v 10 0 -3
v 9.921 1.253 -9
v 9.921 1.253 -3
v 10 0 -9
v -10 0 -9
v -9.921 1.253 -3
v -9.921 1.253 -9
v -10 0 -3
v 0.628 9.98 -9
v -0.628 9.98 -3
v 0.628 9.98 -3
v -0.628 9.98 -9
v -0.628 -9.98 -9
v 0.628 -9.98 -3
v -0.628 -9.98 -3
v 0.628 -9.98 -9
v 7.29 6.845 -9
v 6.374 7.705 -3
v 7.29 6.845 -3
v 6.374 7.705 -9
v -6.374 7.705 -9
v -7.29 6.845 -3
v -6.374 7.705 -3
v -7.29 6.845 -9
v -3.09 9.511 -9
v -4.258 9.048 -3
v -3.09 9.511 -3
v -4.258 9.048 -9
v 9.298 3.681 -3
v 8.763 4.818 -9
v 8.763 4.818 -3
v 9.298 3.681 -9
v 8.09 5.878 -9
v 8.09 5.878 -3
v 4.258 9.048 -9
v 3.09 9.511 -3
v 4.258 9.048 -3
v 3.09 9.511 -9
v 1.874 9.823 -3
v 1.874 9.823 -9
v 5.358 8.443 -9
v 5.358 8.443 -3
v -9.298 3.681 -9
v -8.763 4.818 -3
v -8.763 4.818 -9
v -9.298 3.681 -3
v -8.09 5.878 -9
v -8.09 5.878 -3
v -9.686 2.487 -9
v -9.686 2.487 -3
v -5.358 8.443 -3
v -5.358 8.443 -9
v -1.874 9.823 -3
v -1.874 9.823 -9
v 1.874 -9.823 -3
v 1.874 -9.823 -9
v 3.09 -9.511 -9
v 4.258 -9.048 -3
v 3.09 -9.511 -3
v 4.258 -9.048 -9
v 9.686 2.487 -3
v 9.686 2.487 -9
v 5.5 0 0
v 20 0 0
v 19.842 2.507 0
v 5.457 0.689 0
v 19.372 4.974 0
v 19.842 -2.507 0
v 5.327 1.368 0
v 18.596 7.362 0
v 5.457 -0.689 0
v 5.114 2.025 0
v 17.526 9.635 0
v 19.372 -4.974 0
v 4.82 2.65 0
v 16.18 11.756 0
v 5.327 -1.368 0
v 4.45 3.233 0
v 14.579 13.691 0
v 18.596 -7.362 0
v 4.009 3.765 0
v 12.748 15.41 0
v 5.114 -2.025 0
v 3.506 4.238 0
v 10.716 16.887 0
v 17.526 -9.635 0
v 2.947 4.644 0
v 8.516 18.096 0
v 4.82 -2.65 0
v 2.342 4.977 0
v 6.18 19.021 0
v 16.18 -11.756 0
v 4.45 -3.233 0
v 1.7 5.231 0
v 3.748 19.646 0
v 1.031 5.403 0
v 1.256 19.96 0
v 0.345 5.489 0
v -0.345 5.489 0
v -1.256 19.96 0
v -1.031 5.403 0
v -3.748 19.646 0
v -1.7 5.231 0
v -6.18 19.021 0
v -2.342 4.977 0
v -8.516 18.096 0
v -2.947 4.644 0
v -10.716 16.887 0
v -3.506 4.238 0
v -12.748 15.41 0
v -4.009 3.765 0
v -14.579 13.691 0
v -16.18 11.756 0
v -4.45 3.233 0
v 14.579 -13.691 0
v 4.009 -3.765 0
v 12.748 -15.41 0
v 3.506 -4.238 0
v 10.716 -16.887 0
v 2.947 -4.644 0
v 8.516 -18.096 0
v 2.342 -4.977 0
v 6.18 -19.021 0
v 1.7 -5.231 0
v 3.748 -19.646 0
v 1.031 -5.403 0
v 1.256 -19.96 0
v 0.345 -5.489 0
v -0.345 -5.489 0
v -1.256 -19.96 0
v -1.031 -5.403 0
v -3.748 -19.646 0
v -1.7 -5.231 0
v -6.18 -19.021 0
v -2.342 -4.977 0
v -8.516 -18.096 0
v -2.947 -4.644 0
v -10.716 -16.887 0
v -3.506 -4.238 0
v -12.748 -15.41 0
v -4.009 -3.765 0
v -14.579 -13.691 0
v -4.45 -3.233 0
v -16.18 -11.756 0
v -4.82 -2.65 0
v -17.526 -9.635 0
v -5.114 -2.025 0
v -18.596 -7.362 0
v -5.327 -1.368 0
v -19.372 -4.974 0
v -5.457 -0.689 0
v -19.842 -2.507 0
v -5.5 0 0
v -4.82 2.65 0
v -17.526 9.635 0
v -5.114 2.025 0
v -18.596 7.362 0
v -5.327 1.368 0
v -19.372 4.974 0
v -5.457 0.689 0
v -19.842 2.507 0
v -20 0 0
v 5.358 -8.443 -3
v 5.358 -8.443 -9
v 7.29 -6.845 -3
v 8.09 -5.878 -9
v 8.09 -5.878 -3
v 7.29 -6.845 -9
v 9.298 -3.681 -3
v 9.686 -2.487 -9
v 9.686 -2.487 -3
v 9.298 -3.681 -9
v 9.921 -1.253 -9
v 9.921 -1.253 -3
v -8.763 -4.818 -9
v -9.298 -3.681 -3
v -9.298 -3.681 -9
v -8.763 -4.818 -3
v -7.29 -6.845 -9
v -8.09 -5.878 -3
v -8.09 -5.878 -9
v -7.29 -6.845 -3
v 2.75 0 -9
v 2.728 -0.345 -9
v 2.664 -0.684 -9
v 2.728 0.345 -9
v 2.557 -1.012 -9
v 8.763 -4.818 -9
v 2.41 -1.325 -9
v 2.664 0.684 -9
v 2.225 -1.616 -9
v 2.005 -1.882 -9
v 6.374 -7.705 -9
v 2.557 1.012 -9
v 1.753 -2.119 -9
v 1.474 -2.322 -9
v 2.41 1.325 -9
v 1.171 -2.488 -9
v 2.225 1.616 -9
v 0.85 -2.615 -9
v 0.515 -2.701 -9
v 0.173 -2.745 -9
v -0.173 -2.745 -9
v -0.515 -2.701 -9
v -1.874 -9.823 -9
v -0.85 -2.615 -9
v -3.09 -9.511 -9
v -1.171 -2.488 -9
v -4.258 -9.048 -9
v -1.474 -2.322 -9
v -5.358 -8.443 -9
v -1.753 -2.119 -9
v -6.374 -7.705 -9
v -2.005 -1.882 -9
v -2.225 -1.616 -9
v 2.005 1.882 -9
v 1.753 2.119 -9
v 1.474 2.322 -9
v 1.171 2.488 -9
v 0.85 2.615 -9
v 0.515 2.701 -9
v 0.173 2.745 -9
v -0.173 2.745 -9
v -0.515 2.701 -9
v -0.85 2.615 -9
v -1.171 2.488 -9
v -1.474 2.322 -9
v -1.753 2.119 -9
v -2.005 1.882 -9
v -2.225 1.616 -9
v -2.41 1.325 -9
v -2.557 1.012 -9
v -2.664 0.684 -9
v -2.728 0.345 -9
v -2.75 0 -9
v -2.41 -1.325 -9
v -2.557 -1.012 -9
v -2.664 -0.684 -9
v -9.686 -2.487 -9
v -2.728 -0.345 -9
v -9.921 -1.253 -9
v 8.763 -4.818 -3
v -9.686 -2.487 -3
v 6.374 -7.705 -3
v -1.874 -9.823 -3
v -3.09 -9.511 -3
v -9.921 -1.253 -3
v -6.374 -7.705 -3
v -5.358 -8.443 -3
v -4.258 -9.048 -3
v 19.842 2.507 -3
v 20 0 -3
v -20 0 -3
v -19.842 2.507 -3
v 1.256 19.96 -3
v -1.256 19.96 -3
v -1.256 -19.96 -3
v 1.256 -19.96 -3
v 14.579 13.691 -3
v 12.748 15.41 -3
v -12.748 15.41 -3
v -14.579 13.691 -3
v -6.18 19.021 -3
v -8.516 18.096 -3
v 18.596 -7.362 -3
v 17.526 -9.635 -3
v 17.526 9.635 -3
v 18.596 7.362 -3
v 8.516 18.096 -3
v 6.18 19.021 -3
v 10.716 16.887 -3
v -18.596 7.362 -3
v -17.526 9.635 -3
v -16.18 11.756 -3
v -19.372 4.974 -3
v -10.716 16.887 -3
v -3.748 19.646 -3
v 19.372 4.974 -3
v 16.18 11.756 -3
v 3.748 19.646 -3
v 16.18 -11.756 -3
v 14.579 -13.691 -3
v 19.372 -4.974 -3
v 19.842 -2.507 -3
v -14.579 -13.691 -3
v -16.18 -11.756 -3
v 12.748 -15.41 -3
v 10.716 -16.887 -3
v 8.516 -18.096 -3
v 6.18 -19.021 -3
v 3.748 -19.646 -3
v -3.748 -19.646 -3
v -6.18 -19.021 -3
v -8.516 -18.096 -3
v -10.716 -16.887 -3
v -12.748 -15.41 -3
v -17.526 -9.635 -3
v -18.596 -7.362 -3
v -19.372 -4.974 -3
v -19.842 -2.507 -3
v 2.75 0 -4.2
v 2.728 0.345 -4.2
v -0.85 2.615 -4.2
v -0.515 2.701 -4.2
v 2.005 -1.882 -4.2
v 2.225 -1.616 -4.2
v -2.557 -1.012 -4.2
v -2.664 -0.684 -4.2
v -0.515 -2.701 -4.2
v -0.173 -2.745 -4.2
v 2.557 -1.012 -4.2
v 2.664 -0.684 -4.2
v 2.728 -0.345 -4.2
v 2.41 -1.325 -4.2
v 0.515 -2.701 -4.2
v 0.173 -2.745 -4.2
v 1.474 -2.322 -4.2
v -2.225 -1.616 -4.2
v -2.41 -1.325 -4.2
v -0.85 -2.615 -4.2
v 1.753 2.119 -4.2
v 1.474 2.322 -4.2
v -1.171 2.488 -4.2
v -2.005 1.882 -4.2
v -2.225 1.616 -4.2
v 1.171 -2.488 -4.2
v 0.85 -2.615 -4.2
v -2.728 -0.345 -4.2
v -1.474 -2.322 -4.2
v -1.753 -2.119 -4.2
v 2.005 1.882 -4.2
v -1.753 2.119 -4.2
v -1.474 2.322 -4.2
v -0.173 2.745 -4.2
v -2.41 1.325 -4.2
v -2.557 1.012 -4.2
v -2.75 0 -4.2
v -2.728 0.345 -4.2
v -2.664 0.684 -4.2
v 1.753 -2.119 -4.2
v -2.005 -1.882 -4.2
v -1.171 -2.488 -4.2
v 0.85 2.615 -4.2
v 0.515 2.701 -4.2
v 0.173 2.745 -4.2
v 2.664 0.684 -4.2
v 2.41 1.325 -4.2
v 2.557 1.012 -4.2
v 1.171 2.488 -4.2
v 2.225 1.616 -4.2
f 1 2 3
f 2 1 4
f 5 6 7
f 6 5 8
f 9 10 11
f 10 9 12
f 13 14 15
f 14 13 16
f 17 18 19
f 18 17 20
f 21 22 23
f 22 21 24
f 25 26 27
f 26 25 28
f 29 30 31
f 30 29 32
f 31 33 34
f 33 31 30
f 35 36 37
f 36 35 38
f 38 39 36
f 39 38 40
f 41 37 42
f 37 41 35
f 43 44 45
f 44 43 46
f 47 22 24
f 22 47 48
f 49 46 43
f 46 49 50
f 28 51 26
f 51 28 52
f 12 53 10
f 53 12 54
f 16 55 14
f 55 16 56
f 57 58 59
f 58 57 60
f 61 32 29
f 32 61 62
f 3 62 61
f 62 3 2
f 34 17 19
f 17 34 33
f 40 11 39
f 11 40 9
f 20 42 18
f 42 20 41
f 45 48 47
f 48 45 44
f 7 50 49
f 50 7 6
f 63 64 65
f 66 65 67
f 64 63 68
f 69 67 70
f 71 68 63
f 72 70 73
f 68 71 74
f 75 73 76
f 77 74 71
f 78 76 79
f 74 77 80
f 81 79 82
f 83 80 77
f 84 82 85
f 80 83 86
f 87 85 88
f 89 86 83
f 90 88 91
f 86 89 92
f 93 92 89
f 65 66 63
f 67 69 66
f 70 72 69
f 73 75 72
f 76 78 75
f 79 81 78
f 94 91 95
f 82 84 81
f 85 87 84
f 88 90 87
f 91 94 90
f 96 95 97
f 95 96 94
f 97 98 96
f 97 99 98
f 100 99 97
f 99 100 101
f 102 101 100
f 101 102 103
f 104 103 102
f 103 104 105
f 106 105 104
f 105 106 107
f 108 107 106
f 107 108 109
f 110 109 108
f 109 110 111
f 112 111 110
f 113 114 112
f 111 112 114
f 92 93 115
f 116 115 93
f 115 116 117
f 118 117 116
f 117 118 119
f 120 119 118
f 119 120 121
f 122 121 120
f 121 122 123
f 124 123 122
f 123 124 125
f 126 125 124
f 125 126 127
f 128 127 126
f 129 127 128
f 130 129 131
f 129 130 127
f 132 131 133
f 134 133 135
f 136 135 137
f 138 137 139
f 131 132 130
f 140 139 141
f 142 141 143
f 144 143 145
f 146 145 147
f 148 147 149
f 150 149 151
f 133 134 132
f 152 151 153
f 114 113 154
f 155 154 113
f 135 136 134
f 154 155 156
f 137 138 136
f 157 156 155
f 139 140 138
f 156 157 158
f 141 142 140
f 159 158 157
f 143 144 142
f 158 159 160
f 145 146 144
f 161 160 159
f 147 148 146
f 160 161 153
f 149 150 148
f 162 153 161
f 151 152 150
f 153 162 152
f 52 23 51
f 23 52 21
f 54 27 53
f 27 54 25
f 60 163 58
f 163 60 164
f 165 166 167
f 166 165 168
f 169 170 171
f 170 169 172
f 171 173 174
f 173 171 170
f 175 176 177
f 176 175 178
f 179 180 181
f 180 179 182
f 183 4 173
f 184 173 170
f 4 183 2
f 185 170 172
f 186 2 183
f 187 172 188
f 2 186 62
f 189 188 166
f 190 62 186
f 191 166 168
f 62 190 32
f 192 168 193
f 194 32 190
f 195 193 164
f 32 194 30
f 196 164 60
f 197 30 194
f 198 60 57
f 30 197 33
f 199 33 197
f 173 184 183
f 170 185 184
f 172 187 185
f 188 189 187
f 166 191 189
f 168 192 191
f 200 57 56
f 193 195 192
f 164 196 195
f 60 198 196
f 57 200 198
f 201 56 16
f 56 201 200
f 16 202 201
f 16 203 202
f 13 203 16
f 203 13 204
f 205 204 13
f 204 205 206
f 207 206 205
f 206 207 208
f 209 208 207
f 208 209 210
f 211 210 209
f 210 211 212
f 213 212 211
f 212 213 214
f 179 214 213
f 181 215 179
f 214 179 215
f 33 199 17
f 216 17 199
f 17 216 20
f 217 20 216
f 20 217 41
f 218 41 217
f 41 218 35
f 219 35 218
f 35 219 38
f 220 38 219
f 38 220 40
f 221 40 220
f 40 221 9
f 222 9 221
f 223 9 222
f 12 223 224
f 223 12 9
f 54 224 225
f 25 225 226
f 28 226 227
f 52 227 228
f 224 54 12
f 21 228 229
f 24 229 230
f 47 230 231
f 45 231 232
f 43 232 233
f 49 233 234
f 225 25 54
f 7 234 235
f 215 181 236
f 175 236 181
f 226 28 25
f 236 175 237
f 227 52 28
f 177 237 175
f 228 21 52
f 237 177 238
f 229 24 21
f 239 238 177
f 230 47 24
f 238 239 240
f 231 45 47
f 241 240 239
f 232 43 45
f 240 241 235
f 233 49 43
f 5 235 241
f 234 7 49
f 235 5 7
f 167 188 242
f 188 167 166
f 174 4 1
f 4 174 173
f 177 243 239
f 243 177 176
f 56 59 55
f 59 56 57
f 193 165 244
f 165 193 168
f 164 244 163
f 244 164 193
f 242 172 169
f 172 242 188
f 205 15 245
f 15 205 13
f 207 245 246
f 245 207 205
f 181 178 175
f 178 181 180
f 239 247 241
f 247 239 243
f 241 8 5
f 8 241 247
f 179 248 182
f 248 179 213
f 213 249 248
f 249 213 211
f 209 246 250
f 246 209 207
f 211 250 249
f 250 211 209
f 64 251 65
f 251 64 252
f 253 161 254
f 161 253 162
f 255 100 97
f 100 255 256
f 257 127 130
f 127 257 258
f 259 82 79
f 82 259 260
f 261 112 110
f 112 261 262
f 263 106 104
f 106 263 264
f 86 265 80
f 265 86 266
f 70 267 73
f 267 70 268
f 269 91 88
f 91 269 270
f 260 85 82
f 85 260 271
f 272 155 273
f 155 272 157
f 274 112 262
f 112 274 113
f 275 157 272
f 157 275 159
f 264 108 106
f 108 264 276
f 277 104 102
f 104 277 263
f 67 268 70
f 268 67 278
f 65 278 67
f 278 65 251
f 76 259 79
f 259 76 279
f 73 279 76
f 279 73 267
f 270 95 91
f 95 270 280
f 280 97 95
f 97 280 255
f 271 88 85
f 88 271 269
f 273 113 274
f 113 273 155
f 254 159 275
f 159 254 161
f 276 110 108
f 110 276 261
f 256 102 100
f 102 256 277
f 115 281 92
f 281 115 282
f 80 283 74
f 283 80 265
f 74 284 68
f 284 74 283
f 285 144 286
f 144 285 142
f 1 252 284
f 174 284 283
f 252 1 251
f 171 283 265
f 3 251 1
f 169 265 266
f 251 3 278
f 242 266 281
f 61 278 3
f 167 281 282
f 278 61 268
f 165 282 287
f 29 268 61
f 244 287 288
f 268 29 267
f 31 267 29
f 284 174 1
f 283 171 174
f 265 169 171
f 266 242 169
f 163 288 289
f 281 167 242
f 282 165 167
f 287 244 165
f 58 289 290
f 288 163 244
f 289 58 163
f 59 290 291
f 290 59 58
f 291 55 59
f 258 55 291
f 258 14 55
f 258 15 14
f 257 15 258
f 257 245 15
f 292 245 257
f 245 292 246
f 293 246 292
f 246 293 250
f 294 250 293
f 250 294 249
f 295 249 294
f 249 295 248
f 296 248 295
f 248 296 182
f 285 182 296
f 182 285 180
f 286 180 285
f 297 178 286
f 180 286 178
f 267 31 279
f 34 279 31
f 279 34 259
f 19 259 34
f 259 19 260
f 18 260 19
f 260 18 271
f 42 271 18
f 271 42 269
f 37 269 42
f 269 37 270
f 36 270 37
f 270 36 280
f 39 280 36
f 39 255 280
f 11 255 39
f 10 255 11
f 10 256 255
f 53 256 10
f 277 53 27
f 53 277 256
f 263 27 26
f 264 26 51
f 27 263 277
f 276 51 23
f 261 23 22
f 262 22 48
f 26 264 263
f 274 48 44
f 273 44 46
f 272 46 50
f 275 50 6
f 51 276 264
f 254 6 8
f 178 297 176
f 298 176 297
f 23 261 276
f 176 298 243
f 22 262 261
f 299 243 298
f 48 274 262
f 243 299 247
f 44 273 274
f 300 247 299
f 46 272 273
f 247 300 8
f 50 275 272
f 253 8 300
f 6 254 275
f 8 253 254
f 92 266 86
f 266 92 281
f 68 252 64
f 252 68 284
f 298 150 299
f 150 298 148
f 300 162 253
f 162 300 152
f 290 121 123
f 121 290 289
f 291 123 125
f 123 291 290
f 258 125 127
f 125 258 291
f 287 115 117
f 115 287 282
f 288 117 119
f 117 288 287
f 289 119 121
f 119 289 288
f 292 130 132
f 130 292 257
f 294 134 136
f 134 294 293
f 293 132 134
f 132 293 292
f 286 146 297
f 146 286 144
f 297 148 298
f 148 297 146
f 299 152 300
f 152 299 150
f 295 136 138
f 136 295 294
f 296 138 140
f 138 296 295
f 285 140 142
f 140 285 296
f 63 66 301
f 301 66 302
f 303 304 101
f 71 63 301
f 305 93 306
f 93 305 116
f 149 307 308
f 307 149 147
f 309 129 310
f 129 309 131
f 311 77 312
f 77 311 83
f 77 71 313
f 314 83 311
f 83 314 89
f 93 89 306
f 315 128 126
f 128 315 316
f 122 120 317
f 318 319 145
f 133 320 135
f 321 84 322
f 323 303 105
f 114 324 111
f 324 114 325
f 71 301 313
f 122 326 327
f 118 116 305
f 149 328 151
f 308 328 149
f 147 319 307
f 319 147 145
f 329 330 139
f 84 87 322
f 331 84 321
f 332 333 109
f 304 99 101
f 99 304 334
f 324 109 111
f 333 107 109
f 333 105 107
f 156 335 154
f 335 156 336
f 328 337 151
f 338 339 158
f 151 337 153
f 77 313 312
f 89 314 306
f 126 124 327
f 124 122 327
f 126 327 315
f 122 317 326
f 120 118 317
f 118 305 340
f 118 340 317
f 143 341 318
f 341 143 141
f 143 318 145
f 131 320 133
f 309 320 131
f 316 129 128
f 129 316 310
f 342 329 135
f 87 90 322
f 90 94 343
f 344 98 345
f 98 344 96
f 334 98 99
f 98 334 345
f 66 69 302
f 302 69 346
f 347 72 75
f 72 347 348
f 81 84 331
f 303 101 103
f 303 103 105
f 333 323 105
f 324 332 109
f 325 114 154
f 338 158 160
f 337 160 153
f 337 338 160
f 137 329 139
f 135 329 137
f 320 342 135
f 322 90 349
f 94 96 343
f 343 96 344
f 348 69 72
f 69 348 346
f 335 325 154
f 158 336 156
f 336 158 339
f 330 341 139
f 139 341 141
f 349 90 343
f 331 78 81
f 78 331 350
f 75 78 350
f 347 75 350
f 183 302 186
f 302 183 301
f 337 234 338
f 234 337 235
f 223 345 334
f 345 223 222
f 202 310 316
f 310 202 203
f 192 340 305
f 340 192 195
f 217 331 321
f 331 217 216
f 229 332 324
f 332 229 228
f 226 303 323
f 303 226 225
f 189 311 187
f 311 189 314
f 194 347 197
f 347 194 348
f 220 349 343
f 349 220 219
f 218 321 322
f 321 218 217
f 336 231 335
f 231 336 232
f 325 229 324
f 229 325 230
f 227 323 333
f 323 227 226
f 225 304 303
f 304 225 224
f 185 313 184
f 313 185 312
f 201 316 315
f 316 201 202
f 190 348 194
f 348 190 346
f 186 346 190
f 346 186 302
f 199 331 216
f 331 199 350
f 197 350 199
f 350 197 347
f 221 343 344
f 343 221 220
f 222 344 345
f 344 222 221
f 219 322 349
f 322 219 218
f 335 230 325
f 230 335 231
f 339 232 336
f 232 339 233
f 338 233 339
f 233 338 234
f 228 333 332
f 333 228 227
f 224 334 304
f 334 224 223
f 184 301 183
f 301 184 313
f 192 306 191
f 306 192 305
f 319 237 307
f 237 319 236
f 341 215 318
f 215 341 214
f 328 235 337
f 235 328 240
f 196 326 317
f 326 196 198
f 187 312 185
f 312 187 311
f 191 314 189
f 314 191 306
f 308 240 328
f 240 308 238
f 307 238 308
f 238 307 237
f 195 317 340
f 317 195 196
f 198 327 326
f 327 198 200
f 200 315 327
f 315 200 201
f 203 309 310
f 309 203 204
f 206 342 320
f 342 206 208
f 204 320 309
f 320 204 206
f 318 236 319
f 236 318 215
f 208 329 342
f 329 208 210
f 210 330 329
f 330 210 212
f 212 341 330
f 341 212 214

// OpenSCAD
$fn = 50;


difference() {
	union() {
		translate(v = [0, 0, -9.0000000000]) {
			cylinder(h = 9, r = 10.0000000000);
		}
		translate(v = [0, 0, -3.0000000000]) {
			cylinder(h = 3, r = 20.0000000000);
		}
	}
	union() {
		translate(v = [0, 0, 0]) {
			rotate(a = [0, 0, 0]) {
				difference() {
					union() {
						#translate(v = [0, 0, -9.0000000000]) {
							cylinder(h = 9, r = 2.2500000000);
						}
						#translate(v = [0, 0, -4.2000000000]) {
							cylinder(h = 4.2000000000, r = 10.0000000000, r1 = 2.7500000000, r2 = 5.5000000000);
						}
						#translate(v = [0, 0, -9.0000000000]) {
							cylinder(h = 9, r = 2.7500000000);
						}
						#translate(v = [0, 0, -9.0000000000]) {
							cylinder(h = 9, r = 2.2500000000);
						}
					}
					union();
				}
			}
		}
	}
}
